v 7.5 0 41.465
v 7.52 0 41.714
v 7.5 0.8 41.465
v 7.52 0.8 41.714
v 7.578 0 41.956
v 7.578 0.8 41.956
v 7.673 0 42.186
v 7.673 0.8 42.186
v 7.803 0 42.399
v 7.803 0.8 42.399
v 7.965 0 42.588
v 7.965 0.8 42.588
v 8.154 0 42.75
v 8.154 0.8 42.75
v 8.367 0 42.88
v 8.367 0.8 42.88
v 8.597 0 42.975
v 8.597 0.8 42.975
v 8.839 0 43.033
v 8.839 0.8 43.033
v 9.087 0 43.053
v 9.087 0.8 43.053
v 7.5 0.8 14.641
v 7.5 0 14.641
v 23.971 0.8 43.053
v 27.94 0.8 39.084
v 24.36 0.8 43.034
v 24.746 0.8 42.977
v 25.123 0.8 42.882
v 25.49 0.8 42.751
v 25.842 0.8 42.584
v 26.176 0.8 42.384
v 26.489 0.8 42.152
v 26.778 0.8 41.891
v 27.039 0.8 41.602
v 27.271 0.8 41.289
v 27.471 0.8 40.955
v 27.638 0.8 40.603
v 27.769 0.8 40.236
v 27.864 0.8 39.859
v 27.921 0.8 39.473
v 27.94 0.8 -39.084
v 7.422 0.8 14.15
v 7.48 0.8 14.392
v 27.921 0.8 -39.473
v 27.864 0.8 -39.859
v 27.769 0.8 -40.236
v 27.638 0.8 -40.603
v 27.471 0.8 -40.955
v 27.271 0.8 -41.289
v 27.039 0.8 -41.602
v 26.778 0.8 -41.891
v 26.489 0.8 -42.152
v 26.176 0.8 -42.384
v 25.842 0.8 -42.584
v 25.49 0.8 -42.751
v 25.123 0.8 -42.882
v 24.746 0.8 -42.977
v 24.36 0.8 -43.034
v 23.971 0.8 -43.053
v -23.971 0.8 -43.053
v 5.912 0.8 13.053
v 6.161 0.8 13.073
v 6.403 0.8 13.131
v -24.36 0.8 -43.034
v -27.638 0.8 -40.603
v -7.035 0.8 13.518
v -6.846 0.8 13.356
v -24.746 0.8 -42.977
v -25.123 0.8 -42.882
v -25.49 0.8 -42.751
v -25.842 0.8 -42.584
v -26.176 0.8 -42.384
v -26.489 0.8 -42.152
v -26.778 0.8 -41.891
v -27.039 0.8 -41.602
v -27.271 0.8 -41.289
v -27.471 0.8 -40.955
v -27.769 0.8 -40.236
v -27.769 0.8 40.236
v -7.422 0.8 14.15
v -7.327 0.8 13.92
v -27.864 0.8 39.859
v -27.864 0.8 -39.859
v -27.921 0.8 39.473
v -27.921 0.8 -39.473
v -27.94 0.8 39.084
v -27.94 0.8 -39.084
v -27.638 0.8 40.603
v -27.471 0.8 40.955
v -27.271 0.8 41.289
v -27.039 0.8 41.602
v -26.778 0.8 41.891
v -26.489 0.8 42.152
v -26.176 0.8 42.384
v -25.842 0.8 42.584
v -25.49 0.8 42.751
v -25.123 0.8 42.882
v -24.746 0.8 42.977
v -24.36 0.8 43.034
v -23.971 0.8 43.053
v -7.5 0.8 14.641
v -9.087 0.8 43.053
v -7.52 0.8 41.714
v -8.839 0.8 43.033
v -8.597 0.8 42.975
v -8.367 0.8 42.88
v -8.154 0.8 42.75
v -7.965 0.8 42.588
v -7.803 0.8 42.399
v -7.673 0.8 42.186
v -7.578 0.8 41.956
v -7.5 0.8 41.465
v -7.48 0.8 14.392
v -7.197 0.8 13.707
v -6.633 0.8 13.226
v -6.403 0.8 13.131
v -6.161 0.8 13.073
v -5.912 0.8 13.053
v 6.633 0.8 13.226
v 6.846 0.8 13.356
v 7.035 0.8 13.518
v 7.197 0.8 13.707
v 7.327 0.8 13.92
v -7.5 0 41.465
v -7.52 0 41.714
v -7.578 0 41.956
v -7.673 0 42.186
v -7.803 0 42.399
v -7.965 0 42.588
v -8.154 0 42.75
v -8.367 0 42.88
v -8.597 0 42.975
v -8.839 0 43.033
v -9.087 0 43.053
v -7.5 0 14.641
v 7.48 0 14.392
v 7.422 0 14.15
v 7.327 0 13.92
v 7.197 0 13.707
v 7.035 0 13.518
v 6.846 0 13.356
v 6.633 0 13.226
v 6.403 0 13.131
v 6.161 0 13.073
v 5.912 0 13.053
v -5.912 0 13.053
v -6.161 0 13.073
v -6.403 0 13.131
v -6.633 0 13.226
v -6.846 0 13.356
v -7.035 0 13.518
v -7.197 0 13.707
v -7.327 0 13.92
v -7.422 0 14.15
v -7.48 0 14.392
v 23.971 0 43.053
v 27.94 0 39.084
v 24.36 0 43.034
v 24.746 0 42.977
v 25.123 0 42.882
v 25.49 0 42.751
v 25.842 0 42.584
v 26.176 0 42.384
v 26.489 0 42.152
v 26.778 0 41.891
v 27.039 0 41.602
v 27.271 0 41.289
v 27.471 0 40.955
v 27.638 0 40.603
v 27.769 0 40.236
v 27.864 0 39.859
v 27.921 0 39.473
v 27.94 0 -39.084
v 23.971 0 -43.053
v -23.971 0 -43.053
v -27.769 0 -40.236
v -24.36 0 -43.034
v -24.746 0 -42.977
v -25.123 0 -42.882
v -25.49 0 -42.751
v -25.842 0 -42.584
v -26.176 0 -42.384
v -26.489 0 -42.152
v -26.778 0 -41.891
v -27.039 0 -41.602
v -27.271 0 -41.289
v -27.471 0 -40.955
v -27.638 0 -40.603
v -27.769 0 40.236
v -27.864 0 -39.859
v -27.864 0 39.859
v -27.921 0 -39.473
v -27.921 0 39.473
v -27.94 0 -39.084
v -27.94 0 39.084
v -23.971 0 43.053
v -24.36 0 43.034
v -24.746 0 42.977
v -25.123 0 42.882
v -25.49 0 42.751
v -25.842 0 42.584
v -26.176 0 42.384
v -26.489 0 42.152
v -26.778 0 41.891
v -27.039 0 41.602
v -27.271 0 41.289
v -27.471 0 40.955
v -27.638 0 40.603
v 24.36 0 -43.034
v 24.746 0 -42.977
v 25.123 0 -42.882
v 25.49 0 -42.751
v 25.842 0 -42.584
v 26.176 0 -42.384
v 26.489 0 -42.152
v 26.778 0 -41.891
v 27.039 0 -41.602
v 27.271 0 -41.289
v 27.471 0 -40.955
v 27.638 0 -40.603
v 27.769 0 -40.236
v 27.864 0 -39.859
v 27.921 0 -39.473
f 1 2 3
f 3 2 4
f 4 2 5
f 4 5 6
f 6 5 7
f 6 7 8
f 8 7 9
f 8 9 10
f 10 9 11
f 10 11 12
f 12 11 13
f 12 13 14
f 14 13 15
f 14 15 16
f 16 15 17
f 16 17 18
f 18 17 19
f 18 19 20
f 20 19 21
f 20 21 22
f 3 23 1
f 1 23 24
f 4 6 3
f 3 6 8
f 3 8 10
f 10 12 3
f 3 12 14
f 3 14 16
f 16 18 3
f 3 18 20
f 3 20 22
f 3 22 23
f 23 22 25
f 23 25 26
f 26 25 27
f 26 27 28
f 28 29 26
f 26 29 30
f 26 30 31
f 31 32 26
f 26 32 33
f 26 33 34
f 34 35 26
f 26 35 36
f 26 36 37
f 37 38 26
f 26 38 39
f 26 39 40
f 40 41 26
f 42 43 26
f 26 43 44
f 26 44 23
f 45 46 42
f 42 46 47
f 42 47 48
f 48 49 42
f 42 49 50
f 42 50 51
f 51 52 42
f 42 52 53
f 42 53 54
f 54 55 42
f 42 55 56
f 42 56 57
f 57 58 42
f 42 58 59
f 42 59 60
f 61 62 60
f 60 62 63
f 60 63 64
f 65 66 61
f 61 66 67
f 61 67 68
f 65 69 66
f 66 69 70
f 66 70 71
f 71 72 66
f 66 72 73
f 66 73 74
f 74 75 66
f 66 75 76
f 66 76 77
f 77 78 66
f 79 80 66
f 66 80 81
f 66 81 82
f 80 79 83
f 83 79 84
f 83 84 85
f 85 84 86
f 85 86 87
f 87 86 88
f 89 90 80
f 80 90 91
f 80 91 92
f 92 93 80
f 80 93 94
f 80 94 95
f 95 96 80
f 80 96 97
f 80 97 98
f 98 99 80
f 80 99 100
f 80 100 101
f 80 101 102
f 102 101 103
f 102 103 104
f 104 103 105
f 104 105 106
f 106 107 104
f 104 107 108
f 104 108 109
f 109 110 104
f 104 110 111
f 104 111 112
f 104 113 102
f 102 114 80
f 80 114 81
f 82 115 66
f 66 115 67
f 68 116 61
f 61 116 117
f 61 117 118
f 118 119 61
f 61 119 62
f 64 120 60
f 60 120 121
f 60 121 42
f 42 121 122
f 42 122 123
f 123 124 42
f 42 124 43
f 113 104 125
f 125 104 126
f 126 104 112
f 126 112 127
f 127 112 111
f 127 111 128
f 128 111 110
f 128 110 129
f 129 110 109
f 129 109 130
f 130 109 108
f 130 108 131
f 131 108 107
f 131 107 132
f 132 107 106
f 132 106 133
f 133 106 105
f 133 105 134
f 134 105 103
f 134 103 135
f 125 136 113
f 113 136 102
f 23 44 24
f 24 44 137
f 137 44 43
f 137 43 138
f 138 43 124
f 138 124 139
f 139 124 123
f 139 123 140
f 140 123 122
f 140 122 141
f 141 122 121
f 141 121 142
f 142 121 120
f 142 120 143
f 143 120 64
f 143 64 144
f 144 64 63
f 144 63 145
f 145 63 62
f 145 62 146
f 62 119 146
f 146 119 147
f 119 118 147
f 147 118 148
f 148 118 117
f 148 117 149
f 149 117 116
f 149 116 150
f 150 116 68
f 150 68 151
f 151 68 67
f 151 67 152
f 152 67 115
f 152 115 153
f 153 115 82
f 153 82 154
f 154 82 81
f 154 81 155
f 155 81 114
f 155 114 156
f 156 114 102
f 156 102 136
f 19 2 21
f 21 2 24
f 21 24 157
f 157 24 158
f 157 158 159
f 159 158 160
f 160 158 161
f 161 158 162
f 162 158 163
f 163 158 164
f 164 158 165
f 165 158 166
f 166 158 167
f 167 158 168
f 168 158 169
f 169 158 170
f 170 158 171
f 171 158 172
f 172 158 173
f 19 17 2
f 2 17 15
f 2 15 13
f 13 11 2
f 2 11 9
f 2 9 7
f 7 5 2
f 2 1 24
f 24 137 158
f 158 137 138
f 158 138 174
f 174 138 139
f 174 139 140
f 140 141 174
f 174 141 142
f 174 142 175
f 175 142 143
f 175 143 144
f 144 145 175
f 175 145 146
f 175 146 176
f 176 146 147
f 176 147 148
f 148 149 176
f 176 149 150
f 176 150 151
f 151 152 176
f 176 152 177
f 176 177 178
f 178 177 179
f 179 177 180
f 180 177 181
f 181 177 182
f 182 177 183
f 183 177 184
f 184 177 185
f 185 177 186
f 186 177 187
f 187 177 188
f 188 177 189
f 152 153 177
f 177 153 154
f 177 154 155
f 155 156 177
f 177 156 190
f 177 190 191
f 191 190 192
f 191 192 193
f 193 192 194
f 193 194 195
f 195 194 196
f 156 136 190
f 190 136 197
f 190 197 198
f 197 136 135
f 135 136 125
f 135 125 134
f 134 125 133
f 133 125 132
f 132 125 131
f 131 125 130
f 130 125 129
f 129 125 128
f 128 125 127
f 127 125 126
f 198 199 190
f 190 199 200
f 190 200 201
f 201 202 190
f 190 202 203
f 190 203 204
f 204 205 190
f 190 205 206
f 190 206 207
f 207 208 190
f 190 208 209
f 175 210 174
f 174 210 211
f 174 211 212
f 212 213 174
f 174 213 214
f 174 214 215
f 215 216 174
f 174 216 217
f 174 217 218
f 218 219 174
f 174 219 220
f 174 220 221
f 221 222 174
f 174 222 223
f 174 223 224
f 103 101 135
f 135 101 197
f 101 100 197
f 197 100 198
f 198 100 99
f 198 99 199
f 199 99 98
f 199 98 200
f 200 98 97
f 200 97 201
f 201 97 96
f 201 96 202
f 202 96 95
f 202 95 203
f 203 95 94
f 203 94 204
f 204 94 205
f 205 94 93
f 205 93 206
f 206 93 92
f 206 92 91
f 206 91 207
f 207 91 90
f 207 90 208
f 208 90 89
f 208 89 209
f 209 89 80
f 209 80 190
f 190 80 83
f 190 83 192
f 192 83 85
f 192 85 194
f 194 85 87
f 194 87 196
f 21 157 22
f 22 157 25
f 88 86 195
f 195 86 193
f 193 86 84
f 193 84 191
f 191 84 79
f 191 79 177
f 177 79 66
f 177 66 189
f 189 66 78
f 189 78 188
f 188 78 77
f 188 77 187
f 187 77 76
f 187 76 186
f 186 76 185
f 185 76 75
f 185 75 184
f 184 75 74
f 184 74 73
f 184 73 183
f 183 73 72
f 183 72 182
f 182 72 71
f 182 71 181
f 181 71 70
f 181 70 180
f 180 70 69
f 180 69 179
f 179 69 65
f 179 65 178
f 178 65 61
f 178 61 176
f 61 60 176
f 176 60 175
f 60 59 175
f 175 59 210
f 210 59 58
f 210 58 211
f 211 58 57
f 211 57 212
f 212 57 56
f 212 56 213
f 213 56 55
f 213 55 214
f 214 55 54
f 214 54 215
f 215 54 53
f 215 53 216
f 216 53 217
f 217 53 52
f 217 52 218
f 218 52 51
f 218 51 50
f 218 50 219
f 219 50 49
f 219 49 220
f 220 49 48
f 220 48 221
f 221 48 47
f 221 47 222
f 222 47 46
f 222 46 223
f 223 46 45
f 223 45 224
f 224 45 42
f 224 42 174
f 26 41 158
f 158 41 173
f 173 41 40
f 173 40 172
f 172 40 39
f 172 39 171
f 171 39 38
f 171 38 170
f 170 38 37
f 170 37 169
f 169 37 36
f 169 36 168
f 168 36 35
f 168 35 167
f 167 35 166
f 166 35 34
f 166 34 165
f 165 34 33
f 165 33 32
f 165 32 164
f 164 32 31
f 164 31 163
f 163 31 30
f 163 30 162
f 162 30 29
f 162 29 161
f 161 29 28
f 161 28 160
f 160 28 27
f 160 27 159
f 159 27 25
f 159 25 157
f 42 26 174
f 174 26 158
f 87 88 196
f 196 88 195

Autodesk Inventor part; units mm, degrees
ref_plane "YZ Plane" through (0, 0, 0) normal (1, 0, 0) x (0, 1, 0)
ref_plane "XZ Plane" through (0, 0, 0) normal (0, 1, 0) x (-1, 0, 0)
ref_plane "XY Plane" through (0, 0, 0) normal (0, 0, 1) x (1, 0, 0)
sketch "Sketch1" plane through (0, 0, 0) normal (0, 1, 0) x (-1, 0, 0)
  line L0 (-27.94, -43.053) -> (27.94, -43.053)
  line L1 (27.94, -43.053) -> (27.94, 43.053)
  line L2 (27.94, 43.053) -> (-27.94, 43.053)
  line L3 (-27.94, 43.053) -> (-27.94, -43.053)
  line L4 (-27.94, -43.053) -> (27.94, 43.053) construction
  line L5 (27.94, -43.053) -> (-27.94, 43.053) construction
  point P0 (0, 0)
  dimension "d0" = 86.106
  dimension "d1" = 55.88
extrude "Extrusion1" add sketch "Sketch1" along normal blind 0.8
fillet "Fillet1" radius 3.9688 4 edges at (27.94, 0.4, 43.053) (27.94, 0.4, -43.053) (-27.94, 0.4, -43.053) (-27.94, 0.4, 43.053)
sketch "Sketch2" plane through (0, 0.8, 0) normal (0, 1, 0) x (1, 0, 0)
  line L0 (7.5, -73.053) -> (-7.5, -73.053)
  line L1 (-7.5, -73.053) -> (-7.5, -13.053)
  line L2 (-7.5, -13.053) -> (7.5, -13.053)
  line L3 (7.5, -13.053) -> (7.5, -73.053)
  line L4 (-23.9712, -43.053) -> (23.9713, -43.053) projected
  line L5 (7.5, -73.053) -> (-7.5, -13.053) construction
  line L6 (-7.5, -73.053) -> (7.5, -13.053) construction
  point P0 (0, 0)
  point P1 (0, -43.053)
  point P2 (-7.5, -43.053)
  point P3 (7.5, -43.053)
  dimension "d5" = 15
  dimension "d6" = 60
extrude "Extrusion2" cut sketch "Sketch2" against normal blind 25.4 contours L4 L1 L2 L3
fillet "Fillet2" radius 1.5875 4 edges at (-7.5, 0.4, 13.053) (7.5, 0.4, 13.053) (-7.5, 0.4, 43.053) (7.5, 0.4, 43.053)
properties part number "led_ring_cover"
